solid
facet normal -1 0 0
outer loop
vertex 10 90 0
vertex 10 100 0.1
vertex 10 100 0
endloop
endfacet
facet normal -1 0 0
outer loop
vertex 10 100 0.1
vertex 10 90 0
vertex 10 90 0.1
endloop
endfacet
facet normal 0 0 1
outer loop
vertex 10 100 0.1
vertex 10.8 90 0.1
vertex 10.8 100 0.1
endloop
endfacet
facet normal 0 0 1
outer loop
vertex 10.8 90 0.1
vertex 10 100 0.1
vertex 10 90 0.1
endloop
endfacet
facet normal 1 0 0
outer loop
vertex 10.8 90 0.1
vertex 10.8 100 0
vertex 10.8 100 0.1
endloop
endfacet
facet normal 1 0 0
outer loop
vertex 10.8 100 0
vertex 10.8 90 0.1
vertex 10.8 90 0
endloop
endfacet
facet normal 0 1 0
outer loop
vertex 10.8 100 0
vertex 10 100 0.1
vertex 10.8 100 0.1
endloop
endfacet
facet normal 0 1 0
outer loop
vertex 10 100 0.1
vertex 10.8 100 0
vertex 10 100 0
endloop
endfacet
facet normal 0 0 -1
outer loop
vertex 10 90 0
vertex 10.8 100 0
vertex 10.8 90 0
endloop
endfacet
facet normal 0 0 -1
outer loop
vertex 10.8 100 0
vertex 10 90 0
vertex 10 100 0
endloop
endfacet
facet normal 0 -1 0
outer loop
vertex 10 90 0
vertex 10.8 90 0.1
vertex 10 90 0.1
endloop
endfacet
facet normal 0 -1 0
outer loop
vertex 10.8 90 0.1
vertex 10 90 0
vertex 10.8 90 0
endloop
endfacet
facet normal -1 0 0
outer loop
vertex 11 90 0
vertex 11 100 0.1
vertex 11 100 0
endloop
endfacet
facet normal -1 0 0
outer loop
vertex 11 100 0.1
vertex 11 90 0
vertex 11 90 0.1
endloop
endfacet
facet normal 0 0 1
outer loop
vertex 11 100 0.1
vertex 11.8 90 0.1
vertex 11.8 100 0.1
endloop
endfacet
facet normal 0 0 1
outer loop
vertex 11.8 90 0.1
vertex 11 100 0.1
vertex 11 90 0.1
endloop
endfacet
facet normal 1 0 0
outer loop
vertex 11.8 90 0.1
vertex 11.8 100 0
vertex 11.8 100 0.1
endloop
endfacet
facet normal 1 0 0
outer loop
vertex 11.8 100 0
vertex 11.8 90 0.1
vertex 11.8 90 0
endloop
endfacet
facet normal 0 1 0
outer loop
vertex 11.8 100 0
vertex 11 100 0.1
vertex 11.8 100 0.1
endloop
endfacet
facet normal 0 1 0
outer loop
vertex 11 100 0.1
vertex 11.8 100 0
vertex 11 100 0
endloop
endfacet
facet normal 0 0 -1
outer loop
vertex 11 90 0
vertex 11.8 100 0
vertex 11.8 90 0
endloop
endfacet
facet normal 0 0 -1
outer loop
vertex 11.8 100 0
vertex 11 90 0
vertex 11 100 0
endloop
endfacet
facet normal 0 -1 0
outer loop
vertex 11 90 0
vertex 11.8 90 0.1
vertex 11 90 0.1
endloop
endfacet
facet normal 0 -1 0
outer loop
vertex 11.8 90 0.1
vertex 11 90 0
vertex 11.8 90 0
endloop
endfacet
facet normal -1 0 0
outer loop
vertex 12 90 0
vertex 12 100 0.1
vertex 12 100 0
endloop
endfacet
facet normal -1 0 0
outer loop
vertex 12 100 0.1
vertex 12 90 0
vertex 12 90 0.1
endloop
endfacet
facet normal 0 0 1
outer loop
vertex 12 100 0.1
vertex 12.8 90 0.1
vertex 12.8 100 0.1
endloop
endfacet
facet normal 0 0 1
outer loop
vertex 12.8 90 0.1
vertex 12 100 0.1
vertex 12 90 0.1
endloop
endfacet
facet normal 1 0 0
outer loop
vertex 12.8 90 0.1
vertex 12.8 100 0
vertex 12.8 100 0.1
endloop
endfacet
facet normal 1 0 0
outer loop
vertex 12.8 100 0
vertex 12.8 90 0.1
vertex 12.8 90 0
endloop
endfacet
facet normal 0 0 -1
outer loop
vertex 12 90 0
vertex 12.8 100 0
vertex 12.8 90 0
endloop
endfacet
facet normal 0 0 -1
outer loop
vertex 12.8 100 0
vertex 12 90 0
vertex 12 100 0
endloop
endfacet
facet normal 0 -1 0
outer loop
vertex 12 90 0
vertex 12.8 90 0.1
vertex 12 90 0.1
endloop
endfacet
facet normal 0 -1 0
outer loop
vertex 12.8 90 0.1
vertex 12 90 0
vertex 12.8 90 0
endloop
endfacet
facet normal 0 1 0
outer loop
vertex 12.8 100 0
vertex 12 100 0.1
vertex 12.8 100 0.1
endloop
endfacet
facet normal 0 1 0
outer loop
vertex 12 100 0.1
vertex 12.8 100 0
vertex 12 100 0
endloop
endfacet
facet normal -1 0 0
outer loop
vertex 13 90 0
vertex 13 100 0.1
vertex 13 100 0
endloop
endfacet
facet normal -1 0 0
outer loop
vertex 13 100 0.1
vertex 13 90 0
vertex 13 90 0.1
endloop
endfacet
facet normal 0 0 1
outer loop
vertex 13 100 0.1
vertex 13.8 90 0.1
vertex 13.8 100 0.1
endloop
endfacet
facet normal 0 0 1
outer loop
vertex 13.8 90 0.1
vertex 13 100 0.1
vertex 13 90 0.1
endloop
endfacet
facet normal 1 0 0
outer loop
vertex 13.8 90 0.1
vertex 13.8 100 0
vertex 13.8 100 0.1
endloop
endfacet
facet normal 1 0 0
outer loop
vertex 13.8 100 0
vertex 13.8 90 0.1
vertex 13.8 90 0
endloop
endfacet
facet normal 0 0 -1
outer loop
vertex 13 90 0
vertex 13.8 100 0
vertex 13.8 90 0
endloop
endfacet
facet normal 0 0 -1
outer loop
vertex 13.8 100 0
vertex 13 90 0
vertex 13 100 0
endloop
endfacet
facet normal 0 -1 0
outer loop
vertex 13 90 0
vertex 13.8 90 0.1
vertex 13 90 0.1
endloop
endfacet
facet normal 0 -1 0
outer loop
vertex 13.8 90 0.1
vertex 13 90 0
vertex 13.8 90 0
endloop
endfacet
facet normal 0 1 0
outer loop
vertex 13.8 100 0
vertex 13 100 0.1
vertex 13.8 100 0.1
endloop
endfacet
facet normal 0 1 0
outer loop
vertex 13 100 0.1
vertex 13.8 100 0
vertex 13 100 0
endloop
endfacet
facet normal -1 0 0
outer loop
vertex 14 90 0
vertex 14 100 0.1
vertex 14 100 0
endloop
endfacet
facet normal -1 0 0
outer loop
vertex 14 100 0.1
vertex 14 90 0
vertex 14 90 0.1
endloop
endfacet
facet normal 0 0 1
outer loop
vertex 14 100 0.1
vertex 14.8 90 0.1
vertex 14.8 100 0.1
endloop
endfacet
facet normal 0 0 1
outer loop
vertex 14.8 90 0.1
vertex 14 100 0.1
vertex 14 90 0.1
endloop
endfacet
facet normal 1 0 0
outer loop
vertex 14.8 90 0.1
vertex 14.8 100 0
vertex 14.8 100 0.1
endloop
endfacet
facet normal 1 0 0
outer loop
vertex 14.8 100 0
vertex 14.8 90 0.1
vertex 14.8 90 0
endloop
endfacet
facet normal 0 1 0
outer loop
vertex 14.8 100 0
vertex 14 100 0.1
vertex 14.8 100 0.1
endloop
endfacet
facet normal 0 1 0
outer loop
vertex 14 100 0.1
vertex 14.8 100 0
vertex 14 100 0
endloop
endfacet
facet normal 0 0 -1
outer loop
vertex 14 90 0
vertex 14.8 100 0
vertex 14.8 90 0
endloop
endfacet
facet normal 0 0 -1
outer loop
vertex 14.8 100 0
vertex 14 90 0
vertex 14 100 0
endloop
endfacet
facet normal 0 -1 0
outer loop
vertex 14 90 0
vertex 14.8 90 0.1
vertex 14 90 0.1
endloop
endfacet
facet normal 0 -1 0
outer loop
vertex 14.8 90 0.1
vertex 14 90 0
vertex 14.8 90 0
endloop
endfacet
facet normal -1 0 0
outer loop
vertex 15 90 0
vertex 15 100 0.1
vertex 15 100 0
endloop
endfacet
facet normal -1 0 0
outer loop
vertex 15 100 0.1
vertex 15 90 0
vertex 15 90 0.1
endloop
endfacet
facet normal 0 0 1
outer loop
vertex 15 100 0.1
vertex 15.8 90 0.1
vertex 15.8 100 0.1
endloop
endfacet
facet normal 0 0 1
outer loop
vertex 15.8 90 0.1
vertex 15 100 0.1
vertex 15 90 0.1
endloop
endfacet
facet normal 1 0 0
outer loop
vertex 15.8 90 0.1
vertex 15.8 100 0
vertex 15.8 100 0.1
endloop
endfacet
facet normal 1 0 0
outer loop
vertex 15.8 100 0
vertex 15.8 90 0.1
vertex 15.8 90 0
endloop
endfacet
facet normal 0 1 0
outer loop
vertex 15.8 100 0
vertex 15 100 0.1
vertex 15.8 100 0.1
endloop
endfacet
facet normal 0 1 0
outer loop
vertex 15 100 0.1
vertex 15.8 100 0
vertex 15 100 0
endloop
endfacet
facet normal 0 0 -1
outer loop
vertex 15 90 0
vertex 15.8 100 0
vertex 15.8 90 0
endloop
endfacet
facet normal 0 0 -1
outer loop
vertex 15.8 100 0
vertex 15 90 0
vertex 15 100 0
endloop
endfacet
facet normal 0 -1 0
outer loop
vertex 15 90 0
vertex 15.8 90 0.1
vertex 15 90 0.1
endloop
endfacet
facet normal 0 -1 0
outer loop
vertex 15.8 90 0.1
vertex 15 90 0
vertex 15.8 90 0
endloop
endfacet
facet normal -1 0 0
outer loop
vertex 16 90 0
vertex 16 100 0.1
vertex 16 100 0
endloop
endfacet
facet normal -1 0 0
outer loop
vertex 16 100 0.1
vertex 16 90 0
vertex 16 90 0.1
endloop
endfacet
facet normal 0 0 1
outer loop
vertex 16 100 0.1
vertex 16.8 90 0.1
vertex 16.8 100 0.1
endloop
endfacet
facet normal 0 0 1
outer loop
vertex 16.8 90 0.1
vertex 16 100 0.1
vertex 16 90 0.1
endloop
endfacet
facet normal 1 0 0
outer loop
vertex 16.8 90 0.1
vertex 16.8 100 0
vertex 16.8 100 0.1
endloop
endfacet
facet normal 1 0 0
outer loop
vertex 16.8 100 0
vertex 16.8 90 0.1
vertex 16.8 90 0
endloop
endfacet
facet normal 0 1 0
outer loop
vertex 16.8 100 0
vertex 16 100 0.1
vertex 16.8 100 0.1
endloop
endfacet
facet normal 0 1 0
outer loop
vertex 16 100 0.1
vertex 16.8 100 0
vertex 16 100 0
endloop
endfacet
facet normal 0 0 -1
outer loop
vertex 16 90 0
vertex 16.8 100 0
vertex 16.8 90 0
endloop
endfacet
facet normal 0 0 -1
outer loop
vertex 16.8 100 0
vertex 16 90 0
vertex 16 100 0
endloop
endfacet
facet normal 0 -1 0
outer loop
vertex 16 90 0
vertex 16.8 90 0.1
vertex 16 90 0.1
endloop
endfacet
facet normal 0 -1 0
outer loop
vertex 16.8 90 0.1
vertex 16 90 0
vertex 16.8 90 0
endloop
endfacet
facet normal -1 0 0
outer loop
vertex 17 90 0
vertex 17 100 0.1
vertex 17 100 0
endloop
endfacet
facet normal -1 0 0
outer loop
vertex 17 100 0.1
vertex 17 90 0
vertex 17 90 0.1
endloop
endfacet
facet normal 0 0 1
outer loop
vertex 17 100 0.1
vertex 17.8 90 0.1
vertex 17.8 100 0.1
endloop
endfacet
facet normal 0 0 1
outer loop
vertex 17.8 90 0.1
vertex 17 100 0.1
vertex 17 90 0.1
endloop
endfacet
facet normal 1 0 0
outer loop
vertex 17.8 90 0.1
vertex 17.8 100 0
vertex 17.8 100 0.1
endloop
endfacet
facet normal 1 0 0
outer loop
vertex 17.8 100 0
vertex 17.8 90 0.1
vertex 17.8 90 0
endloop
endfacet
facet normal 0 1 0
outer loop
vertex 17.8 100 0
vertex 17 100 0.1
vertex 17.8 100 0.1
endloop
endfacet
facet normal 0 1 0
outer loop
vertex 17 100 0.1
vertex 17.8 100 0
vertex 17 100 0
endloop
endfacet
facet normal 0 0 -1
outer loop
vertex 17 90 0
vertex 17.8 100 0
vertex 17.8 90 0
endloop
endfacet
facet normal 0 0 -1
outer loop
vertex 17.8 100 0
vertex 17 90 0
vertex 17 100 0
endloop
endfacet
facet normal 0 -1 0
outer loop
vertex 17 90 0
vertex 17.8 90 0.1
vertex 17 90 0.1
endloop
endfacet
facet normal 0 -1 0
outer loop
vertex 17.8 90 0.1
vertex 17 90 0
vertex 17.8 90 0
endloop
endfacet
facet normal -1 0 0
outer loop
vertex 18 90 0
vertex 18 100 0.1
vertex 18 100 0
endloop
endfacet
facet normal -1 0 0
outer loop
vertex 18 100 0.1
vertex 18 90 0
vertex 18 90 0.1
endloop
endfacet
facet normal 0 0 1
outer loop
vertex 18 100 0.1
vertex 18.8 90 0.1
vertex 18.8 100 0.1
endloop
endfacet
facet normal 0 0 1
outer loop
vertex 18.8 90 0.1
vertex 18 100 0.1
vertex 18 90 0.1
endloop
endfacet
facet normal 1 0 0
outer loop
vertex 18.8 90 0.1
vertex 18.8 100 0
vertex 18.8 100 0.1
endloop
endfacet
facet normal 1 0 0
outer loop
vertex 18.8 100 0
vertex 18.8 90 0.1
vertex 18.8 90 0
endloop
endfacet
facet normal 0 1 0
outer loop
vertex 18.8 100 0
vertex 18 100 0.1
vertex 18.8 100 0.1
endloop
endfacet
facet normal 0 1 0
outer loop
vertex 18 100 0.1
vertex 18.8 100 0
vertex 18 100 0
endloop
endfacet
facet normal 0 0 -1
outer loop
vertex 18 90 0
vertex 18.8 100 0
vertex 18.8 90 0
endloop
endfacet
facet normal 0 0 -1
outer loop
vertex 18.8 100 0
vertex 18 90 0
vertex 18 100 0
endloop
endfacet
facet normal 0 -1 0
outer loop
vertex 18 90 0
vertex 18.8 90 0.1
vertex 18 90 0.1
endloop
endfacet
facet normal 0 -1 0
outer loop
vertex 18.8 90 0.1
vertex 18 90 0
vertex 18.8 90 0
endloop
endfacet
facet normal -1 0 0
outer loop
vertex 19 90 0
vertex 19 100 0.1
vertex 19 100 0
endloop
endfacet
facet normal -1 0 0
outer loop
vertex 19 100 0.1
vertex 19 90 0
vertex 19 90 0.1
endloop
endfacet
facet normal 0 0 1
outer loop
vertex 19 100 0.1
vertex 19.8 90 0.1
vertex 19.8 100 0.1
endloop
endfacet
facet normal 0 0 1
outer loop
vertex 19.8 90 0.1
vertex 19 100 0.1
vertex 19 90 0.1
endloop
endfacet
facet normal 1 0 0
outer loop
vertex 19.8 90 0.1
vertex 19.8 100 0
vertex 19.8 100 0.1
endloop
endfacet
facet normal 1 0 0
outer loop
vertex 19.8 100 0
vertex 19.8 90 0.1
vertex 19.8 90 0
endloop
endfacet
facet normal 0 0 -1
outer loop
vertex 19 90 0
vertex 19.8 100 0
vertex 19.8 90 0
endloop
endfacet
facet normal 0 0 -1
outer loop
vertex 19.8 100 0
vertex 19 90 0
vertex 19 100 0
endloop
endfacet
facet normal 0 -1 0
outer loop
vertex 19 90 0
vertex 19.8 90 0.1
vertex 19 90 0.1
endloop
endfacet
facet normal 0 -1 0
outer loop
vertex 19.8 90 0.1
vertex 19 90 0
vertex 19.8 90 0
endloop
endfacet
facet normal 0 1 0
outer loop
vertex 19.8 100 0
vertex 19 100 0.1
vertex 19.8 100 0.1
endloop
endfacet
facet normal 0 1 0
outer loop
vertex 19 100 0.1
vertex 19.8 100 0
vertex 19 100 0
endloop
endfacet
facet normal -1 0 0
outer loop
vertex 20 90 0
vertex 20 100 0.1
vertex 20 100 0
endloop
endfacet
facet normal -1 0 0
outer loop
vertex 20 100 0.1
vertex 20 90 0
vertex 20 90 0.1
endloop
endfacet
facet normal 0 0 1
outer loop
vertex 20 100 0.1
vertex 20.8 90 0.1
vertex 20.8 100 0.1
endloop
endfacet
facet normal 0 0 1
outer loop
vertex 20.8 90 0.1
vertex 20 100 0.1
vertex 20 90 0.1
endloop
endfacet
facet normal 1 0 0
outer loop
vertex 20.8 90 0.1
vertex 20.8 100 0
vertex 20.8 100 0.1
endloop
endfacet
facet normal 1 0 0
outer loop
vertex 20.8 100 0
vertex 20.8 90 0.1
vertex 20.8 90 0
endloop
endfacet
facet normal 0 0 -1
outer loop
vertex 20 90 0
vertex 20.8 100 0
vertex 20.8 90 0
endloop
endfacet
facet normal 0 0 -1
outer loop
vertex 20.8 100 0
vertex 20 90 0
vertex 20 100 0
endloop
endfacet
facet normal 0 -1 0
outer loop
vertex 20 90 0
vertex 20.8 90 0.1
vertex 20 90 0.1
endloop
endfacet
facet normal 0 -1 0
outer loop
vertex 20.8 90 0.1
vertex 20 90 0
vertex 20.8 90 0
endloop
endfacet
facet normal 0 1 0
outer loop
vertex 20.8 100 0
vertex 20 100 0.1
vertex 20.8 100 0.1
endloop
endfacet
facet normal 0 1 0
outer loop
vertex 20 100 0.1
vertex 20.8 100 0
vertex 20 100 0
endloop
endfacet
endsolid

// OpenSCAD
translate([10+0,10+80,0])
        for (i = [0 : 10]){
            translate([i,0,0])
                cube(size = [0.8,10,0.1]);
    }
